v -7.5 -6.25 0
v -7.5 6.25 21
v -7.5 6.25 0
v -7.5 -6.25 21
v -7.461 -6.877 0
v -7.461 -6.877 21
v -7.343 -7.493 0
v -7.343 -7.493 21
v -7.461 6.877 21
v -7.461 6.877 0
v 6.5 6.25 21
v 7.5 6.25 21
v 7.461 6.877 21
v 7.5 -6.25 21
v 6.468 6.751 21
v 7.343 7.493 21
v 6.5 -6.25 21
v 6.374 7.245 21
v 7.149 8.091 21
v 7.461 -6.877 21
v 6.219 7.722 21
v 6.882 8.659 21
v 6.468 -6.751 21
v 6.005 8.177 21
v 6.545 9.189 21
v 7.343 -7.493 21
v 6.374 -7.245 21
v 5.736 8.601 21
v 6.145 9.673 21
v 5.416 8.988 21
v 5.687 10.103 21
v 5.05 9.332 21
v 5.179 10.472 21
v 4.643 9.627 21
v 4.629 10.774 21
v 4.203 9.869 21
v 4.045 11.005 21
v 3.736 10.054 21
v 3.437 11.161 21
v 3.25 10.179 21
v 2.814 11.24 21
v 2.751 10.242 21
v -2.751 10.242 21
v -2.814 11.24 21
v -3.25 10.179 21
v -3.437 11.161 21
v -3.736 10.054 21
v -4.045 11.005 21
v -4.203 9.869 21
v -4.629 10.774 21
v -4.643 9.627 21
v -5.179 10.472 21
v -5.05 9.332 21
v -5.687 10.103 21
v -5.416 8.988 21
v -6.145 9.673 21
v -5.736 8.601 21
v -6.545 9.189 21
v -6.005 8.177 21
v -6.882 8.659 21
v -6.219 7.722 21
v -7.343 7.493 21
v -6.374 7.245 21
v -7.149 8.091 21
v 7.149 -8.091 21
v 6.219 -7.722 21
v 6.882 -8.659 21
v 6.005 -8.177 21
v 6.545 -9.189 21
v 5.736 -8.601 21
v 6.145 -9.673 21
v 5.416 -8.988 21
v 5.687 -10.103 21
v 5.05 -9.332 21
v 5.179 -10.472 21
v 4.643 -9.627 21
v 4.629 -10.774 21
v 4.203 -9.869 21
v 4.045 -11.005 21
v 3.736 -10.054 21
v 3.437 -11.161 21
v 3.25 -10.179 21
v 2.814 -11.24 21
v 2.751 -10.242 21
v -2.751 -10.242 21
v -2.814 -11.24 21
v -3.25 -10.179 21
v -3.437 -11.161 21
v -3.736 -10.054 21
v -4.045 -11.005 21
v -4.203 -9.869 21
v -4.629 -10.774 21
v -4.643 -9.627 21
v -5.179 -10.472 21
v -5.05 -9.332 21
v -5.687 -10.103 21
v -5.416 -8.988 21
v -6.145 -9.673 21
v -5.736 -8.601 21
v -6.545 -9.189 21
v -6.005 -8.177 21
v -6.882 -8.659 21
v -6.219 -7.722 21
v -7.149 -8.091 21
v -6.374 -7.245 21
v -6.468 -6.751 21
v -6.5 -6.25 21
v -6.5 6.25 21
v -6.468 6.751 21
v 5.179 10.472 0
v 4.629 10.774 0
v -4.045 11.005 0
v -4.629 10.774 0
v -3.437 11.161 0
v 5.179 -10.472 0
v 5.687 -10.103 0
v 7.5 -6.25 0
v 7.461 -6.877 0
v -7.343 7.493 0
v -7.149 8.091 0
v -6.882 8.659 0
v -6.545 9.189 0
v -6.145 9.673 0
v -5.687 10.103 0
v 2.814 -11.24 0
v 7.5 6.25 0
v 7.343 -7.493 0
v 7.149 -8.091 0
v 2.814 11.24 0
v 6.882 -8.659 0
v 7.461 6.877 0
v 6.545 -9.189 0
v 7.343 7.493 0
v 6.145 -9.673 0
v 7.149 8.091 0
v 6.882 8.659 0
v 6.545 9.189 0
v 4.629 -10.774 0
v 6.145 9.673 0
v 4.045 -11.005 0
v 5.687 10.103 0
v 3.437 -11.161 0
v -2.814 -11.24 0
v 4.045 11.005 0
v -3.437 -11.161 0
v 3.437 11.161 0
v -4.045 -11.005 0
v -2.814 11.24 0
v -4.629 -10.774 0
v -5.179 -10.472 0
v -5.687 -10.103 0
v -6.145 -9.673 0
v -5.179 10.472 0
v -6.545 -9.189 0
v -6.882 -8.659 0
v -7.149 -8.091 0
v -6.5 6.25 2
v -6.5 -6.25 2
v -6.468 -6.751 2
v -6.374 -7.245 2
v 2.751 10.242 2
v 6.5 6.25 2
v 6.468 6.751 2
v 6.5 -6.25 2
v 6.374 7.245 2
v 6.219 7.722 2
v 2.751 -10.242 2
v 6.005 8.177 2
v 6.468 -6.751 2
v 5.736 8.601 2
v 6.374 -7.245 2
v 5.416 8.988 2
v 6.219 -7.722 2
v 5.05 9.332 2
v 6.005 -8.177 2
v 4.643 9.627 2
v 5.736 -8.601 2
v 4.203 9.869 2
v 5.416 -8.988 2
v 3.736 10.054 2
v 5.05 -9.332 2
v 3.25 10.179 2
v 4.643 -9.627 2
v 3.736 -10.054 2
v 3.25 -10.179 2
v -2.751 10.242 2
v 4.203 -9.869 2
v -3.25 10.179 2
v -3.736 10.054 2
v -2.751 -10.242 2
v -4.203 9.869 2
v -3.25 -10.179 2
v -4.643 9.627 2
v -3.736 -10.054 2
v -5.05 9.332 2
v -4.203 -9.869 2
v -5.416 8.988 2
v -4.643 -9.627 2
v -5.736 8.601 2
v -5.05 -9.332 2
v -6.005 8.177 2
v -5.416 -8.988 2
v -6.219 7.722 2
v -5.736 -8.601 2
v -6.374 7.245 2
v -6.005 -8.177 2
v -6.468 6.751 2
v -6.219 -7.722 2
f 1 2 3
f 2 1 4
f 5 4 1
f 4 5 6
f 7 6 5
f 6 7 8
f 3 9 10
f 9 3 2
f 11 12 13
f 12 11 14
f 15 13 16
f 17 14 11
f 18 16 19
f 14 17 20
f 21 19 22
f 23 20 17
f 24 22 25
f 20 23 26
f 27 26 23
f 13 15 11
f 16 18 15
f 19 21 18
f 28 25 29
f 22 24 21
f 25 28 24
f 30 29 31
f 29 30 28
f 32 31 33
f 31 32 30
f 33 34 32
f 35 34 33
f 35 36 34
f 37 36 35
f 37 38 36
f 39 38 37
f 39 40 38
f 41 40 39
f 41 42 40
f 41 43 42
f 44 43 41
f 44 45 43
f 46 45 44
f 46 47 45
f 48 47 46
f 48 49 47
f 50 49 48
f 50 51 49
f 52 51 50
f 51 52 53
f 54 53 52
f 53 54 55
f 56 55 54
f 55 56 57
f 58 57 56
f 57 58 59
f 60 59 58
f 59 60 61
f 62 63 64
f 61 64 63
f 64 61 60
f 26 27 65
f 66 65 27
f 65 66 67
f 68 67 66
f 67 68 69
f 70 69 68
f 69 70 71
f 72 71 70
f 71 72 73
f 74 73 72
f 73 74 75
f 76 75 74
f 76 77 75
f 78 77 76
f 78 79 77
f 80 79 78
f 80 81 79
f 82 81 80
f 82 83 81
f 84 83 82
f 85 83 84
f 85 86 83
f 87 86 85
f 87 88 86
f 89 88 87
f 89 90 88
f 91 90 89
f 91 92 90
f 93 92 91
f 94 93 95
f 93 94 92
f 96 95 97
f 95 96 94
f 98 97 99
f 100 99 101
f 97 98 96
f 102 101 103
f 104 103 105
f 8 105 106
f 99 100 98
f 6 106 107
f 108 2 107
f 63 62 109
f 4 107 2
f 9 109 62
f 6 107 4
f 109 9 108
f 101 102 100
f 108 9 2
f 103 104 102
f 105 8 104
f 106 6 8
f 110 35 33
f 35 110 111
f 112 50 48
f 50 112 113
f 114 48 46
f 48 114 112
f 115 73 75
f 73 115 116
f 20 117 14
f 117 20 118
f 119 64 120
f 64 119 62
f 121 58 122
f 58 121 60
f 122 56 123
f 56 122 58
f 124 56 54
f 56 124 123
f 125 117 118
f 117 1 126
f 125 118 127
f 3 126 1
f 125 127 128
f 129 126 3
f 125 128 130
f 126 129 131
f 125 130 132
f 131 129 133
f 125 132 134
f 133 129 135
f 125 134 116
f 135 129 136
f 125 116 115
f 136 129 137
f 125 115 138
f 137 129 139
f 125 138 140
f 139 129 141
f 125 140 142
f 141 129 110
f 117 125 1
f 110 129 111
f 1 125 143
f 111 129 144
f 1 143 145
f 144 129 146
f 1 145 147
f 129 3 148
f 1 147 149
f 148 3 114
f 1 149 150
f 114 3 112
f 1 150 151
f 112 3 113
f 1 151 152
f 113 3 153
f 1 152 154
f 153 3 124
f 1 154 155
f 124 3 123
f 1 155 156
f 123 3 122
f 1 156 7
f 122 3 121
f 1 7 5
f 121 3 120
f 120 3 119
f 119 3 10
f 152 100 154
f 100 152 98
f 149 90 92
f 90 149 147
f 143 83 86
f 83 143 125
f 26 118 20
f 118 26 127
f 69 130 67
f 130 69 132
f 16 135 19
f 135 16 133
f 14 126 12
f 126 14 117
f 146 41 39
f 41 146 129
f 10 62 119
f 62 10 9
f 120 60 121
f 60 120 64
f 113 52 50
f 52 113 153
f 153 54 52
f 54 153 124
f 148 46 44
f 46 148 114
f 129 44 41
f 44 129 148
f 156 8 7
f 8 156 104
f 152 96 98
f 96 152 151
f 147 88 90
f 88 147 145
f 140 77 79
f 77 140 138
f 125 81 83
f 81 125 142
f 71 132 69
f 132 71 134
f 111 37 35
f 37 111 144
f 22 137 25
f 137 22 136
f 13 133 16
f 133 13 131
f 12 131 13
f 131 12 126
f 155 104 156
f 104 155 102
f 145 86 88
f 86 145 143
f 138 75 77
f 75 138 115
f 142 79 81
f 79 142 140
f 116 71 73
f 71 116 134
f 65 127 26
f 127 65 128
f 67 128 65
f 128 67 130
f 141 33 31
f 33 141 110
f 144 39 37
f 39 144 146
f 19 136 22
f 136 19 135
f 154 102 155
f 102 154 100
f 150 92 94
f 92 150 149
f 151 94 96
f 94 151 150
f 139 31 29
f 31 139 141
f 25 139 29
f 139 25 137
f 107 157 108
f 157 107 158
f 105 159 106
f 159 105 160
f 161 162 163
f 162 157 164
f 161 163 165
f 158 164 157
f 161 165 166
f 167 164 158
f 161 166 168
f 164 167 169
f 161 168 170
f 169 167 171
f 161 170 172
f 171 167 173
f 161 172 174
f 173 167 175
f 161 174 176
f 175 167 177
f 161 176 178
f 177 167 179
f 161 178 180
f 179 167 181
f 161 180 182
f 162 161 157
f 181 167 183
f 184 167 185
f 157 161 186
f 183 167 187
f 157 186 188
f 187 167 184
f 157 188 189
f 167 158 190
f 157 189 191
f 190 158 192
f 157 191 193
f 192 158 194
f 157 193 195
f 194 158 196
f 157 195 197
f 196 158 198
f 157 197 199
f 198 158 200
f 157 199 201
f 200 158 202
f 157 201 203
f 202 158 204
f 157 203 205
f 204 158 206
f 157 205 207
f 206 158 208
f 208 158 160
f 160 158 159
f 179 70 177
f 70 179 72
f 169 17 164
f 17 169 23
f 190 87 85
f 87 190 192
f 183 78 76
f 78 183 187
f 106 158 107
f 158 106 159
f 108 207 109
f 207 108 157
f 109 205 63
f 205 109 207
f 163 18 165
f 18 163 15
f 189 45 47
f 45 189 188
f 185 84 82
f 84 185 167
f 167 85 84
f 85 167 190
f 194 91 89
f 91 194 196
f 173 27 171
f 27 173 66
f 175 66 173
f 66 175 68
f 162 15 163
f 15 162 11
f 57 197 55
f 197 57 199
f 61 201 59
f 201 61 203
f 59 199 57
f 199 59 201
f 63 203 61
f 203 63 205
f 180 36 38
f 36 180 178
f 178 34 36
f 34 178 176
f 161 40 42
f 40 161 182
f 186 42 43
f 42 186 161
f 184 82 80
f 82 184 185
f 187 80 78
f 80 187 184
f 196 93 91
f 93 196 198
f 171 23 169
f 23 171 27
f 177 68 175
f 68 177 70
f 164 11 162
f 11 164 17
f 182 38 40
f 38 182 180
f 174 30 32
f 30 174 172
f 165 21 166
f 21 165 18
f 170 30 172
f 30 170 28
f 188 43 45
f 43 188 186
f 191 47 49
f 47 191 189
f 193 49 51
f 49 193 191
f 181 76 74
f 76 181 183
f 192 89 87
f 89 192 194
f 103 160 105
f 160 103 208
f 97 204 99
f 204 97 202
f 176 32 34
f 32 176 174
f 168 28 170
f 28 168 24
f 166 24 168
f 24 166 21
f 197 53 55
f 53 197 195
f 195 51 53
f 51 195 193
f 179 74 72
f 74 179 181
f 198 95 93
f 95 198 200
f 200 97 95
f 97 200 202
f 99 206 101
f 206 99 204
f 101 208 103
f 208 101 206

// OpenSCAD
$fn = 50;


difference() {
	union() {
		hull() {
			translate(v = [-2.5000000000, 6.2500000000, 0]) {
				cylinder(h = 21, r = 5);
			}
			translate(v = [2.5000000000, 6.2500000000, 0]) {
				cylinder(h = 21, r = 5);
			}
			translate(v = [-2.5000000000, -6.2500000000, 0]) {
				cylinder(h = 21, r = 5);
			}
			translate(v = [2.5000000000, -6.2500000000, 0]) {
				cylinder(h = 21, r = 5);
			}
		}
	}
	union() {
		translate(v = [0, 0, 2]) {
			hull() {
				translate(v = [-2.5000000000, 6.2500000000, 0]) {
					cylinder(h = 19, r = 4);
				}
				translate(v = [2.5000000000, 6.2500000000, 0]) {
					cylinder(h = 19, r = 4);
				}
				translate(v = [-2.5000000000, -6.2500000000, 0]) {
					cylinder(h = 19, r = 4);
				}
				translate(v = [2.5000000000, -6.2500000000, 0]) {
					cylinder(h = 19, r = 4);
				}
			}
		}
	}
}
